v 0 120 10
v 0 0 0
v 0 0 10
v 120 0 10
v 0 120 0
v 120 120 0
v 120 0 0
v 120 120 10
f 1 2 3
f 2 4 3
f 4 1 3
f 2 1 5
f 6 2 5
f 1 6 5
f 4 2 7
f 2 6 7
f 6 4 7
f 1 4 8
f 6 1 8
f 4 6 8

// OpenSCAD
// Generated with Enhanced City Converter
// Style: block-combine
// Detail Level: 1.0

// Base terrain with cutouts
difference() {
    // Base block
    cube([120.0, 120.0, 10]);
    
    // Subtract water, roads, railways
    union() {
        

        
    }
}

// Parks as separate features


// Buildings and bridges
